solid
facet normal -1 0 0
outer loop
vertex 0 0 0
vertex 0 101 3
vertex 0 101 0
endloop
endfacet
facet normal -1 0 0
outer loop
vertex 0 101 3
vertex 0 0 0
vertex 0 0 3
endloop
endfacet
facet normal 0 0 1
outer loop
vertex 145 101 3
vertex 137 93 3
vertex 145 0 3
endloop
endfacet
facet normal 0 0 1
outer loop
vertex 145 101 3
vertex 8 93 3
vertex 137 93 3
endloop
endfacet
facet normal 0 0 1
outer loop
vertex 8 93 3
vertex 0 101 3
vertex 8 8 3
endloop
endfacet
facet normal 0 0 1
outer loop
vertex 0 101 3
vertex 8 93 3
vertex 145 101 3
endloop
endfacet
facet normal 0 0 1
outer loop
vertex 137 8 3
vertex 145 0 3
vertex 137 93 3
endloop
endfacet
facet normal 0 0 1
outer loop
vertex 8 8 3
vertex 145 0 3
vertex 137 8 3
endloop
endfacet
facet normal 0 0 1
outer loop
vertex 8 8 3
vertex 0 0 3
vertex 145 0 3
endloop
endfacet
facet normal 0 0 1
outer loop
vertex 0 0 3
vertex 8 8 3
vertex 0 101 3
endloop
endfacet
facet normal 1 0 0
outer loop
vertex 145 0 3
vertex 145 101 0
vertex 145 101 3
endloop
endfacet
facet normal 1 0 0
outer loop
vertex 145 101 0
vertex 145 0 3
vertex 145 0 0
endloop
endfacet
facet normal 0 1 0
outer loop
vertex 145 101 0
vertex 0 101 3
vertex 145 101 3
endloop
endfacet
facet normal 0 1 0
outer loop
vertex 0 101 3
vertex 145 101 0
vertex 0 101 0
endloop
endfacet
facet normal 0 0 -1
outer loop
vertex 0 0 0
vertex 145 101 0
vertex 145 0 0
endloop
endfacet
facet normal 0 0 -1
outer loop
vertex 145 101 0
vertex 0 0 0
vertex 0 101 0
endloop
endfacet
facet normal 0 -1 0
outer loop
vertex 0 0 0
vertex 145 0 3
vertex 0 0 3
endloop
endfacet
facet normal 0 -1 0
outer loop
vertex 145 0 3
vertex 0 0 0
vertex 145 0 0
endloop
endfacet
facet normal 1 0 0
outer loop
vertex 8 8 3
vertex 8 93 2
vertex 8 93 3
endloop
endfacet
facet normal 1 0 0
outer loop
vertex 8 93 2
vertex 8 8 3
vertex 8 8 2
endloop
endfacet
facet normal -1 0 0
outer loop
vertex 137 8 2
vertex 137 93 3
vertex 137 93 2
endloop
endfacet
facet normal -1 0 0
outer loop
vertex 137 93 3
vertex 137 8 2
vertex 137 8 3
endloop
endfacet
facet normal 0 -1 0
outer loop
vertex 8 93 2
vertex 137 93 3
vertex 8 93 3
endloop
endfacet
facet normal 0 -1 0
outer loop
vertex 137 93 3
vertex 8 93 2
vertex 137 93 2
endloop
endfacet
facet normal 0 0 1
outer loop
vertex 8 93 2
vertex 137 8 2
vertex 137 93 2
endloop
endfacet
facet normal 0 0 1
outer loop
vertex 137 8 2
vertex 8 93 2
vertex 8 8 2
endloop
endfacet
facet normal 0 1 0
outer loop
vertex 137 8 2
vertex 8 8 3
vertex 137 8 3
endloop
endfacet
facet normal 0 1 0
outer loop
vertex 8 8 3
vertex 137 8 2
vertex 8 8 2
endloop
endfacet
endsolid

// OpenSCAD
// Generated by SolidPython 1.1.3 on 2025-06-07 19:35:25
$fn = 64;


difference() {
	cube(size = [145, 101, 3.0000000000]);
	translate(v = [0, 0, 2]) {
		translate(v = [8, 8, 0]) {
			cube(size = [129, 85, 3.0000000000]);
		}
	}
}
/***********************************************
*********      SolidPython code:      **********
************************************************
 
import numpy as np
from solid import *
from solid.utils import *

z = 0.01
z2 = z*2
m = 2

t = translate
tx = lambda e, x: t([x, 0, 0])(e)
ty = lambda e, x: t([0, x, 0])(e)
tz = lambda e, x: t([0, 0, x])(e)
txy = lambda e, x, y: t([x, y, 0])(e)
r = rotate
rx = lambda e, x: r([x, 0, 0])(e)
ry = lambda e, x: r([0, x, 0])(e)
rz = lambda e, x: r([0, 0, x])(e)
sc = scale
sx = lambda e, x: sc([x, 1, 1])(e)
sy = lambda e, x: sc([1, x, 1])(e)
sz = lambda e, x: sc([1, 1, x])(e)
cos = np.cos
sin = np.sin
pi = np.pi
save = lambda m, n: scad_render_to_file(m, n, file_header='$fn = 64;')

# Parameters
keyboard_width = 269      # Width of the keyboard cover
keyboard_depth = 101      # Depth of the keyboard cover
keyboard_thickness = 2    # Key height
support_lines = [
    27.5,
    45.75,
    64,
    82.5,
]
support_thickness = 1.5   # Thickness of the support lines

touchpad_width = 133      # Width of the touchpad cover
touchpad_depth = 89       # Depth of the touchpad cover
touchpad_margin = 0.5  # Touchpad indentation height

cover_thickness = 2       # Thickness of the keyboard cover
cover_margin = 4          # Margin around the keyboard and touchpad covers


def create_keyboard_cover():
    base = cube([
        keyboard_width + cover_margin,
        keyboard_depth + cover_margin,
        cover_thickness + keyboard_thickness
    ])

    hole = cube([
        keyboard_width,
        keyboard_depth,
        keyboard_thickness + z2
    ])
    hole = txy(hole, cover_margin / 2, cover_margin / 2)
    hole = tz(hole, cover_thickness)

    support = []
    for y in support_lines:
        line = cube([keyboard_width, support_thickness, keyboard_thickness + z])
        line = txy(line, cover_margin / 2, y - support_thickness / 2 + cover_margin / 2)
        line = tz(line, cover_thickness)
        support.append(line)

    cover = base - hole + support

    return cover


def create_touchpad_cover():
    base = cube([
        touchpad_width + cover_margin * 3,
        touchpad_depth + cover_margin * 3,
        cover_thickness + touchpad_margin * 2
    ])

    hole = cube([
        touchpad_width - cover_margin,
        touchpad_depth - cover_margin,
        touchpad_margin * 2 + cover_thickness
    ])
    hole = txy(hole, cover_margin * 2, cover_margin * 2)
    hole = tz(hole, cover_thickness)

    cover = base - hole

    return cover


save(create_keyboard_cover(), "cat-keyboard-protection.keyboard.scad")
save(create_touchpad_cover(), "cat-keyboard-protection.touchpad.scad")
 
 
************************************************/
